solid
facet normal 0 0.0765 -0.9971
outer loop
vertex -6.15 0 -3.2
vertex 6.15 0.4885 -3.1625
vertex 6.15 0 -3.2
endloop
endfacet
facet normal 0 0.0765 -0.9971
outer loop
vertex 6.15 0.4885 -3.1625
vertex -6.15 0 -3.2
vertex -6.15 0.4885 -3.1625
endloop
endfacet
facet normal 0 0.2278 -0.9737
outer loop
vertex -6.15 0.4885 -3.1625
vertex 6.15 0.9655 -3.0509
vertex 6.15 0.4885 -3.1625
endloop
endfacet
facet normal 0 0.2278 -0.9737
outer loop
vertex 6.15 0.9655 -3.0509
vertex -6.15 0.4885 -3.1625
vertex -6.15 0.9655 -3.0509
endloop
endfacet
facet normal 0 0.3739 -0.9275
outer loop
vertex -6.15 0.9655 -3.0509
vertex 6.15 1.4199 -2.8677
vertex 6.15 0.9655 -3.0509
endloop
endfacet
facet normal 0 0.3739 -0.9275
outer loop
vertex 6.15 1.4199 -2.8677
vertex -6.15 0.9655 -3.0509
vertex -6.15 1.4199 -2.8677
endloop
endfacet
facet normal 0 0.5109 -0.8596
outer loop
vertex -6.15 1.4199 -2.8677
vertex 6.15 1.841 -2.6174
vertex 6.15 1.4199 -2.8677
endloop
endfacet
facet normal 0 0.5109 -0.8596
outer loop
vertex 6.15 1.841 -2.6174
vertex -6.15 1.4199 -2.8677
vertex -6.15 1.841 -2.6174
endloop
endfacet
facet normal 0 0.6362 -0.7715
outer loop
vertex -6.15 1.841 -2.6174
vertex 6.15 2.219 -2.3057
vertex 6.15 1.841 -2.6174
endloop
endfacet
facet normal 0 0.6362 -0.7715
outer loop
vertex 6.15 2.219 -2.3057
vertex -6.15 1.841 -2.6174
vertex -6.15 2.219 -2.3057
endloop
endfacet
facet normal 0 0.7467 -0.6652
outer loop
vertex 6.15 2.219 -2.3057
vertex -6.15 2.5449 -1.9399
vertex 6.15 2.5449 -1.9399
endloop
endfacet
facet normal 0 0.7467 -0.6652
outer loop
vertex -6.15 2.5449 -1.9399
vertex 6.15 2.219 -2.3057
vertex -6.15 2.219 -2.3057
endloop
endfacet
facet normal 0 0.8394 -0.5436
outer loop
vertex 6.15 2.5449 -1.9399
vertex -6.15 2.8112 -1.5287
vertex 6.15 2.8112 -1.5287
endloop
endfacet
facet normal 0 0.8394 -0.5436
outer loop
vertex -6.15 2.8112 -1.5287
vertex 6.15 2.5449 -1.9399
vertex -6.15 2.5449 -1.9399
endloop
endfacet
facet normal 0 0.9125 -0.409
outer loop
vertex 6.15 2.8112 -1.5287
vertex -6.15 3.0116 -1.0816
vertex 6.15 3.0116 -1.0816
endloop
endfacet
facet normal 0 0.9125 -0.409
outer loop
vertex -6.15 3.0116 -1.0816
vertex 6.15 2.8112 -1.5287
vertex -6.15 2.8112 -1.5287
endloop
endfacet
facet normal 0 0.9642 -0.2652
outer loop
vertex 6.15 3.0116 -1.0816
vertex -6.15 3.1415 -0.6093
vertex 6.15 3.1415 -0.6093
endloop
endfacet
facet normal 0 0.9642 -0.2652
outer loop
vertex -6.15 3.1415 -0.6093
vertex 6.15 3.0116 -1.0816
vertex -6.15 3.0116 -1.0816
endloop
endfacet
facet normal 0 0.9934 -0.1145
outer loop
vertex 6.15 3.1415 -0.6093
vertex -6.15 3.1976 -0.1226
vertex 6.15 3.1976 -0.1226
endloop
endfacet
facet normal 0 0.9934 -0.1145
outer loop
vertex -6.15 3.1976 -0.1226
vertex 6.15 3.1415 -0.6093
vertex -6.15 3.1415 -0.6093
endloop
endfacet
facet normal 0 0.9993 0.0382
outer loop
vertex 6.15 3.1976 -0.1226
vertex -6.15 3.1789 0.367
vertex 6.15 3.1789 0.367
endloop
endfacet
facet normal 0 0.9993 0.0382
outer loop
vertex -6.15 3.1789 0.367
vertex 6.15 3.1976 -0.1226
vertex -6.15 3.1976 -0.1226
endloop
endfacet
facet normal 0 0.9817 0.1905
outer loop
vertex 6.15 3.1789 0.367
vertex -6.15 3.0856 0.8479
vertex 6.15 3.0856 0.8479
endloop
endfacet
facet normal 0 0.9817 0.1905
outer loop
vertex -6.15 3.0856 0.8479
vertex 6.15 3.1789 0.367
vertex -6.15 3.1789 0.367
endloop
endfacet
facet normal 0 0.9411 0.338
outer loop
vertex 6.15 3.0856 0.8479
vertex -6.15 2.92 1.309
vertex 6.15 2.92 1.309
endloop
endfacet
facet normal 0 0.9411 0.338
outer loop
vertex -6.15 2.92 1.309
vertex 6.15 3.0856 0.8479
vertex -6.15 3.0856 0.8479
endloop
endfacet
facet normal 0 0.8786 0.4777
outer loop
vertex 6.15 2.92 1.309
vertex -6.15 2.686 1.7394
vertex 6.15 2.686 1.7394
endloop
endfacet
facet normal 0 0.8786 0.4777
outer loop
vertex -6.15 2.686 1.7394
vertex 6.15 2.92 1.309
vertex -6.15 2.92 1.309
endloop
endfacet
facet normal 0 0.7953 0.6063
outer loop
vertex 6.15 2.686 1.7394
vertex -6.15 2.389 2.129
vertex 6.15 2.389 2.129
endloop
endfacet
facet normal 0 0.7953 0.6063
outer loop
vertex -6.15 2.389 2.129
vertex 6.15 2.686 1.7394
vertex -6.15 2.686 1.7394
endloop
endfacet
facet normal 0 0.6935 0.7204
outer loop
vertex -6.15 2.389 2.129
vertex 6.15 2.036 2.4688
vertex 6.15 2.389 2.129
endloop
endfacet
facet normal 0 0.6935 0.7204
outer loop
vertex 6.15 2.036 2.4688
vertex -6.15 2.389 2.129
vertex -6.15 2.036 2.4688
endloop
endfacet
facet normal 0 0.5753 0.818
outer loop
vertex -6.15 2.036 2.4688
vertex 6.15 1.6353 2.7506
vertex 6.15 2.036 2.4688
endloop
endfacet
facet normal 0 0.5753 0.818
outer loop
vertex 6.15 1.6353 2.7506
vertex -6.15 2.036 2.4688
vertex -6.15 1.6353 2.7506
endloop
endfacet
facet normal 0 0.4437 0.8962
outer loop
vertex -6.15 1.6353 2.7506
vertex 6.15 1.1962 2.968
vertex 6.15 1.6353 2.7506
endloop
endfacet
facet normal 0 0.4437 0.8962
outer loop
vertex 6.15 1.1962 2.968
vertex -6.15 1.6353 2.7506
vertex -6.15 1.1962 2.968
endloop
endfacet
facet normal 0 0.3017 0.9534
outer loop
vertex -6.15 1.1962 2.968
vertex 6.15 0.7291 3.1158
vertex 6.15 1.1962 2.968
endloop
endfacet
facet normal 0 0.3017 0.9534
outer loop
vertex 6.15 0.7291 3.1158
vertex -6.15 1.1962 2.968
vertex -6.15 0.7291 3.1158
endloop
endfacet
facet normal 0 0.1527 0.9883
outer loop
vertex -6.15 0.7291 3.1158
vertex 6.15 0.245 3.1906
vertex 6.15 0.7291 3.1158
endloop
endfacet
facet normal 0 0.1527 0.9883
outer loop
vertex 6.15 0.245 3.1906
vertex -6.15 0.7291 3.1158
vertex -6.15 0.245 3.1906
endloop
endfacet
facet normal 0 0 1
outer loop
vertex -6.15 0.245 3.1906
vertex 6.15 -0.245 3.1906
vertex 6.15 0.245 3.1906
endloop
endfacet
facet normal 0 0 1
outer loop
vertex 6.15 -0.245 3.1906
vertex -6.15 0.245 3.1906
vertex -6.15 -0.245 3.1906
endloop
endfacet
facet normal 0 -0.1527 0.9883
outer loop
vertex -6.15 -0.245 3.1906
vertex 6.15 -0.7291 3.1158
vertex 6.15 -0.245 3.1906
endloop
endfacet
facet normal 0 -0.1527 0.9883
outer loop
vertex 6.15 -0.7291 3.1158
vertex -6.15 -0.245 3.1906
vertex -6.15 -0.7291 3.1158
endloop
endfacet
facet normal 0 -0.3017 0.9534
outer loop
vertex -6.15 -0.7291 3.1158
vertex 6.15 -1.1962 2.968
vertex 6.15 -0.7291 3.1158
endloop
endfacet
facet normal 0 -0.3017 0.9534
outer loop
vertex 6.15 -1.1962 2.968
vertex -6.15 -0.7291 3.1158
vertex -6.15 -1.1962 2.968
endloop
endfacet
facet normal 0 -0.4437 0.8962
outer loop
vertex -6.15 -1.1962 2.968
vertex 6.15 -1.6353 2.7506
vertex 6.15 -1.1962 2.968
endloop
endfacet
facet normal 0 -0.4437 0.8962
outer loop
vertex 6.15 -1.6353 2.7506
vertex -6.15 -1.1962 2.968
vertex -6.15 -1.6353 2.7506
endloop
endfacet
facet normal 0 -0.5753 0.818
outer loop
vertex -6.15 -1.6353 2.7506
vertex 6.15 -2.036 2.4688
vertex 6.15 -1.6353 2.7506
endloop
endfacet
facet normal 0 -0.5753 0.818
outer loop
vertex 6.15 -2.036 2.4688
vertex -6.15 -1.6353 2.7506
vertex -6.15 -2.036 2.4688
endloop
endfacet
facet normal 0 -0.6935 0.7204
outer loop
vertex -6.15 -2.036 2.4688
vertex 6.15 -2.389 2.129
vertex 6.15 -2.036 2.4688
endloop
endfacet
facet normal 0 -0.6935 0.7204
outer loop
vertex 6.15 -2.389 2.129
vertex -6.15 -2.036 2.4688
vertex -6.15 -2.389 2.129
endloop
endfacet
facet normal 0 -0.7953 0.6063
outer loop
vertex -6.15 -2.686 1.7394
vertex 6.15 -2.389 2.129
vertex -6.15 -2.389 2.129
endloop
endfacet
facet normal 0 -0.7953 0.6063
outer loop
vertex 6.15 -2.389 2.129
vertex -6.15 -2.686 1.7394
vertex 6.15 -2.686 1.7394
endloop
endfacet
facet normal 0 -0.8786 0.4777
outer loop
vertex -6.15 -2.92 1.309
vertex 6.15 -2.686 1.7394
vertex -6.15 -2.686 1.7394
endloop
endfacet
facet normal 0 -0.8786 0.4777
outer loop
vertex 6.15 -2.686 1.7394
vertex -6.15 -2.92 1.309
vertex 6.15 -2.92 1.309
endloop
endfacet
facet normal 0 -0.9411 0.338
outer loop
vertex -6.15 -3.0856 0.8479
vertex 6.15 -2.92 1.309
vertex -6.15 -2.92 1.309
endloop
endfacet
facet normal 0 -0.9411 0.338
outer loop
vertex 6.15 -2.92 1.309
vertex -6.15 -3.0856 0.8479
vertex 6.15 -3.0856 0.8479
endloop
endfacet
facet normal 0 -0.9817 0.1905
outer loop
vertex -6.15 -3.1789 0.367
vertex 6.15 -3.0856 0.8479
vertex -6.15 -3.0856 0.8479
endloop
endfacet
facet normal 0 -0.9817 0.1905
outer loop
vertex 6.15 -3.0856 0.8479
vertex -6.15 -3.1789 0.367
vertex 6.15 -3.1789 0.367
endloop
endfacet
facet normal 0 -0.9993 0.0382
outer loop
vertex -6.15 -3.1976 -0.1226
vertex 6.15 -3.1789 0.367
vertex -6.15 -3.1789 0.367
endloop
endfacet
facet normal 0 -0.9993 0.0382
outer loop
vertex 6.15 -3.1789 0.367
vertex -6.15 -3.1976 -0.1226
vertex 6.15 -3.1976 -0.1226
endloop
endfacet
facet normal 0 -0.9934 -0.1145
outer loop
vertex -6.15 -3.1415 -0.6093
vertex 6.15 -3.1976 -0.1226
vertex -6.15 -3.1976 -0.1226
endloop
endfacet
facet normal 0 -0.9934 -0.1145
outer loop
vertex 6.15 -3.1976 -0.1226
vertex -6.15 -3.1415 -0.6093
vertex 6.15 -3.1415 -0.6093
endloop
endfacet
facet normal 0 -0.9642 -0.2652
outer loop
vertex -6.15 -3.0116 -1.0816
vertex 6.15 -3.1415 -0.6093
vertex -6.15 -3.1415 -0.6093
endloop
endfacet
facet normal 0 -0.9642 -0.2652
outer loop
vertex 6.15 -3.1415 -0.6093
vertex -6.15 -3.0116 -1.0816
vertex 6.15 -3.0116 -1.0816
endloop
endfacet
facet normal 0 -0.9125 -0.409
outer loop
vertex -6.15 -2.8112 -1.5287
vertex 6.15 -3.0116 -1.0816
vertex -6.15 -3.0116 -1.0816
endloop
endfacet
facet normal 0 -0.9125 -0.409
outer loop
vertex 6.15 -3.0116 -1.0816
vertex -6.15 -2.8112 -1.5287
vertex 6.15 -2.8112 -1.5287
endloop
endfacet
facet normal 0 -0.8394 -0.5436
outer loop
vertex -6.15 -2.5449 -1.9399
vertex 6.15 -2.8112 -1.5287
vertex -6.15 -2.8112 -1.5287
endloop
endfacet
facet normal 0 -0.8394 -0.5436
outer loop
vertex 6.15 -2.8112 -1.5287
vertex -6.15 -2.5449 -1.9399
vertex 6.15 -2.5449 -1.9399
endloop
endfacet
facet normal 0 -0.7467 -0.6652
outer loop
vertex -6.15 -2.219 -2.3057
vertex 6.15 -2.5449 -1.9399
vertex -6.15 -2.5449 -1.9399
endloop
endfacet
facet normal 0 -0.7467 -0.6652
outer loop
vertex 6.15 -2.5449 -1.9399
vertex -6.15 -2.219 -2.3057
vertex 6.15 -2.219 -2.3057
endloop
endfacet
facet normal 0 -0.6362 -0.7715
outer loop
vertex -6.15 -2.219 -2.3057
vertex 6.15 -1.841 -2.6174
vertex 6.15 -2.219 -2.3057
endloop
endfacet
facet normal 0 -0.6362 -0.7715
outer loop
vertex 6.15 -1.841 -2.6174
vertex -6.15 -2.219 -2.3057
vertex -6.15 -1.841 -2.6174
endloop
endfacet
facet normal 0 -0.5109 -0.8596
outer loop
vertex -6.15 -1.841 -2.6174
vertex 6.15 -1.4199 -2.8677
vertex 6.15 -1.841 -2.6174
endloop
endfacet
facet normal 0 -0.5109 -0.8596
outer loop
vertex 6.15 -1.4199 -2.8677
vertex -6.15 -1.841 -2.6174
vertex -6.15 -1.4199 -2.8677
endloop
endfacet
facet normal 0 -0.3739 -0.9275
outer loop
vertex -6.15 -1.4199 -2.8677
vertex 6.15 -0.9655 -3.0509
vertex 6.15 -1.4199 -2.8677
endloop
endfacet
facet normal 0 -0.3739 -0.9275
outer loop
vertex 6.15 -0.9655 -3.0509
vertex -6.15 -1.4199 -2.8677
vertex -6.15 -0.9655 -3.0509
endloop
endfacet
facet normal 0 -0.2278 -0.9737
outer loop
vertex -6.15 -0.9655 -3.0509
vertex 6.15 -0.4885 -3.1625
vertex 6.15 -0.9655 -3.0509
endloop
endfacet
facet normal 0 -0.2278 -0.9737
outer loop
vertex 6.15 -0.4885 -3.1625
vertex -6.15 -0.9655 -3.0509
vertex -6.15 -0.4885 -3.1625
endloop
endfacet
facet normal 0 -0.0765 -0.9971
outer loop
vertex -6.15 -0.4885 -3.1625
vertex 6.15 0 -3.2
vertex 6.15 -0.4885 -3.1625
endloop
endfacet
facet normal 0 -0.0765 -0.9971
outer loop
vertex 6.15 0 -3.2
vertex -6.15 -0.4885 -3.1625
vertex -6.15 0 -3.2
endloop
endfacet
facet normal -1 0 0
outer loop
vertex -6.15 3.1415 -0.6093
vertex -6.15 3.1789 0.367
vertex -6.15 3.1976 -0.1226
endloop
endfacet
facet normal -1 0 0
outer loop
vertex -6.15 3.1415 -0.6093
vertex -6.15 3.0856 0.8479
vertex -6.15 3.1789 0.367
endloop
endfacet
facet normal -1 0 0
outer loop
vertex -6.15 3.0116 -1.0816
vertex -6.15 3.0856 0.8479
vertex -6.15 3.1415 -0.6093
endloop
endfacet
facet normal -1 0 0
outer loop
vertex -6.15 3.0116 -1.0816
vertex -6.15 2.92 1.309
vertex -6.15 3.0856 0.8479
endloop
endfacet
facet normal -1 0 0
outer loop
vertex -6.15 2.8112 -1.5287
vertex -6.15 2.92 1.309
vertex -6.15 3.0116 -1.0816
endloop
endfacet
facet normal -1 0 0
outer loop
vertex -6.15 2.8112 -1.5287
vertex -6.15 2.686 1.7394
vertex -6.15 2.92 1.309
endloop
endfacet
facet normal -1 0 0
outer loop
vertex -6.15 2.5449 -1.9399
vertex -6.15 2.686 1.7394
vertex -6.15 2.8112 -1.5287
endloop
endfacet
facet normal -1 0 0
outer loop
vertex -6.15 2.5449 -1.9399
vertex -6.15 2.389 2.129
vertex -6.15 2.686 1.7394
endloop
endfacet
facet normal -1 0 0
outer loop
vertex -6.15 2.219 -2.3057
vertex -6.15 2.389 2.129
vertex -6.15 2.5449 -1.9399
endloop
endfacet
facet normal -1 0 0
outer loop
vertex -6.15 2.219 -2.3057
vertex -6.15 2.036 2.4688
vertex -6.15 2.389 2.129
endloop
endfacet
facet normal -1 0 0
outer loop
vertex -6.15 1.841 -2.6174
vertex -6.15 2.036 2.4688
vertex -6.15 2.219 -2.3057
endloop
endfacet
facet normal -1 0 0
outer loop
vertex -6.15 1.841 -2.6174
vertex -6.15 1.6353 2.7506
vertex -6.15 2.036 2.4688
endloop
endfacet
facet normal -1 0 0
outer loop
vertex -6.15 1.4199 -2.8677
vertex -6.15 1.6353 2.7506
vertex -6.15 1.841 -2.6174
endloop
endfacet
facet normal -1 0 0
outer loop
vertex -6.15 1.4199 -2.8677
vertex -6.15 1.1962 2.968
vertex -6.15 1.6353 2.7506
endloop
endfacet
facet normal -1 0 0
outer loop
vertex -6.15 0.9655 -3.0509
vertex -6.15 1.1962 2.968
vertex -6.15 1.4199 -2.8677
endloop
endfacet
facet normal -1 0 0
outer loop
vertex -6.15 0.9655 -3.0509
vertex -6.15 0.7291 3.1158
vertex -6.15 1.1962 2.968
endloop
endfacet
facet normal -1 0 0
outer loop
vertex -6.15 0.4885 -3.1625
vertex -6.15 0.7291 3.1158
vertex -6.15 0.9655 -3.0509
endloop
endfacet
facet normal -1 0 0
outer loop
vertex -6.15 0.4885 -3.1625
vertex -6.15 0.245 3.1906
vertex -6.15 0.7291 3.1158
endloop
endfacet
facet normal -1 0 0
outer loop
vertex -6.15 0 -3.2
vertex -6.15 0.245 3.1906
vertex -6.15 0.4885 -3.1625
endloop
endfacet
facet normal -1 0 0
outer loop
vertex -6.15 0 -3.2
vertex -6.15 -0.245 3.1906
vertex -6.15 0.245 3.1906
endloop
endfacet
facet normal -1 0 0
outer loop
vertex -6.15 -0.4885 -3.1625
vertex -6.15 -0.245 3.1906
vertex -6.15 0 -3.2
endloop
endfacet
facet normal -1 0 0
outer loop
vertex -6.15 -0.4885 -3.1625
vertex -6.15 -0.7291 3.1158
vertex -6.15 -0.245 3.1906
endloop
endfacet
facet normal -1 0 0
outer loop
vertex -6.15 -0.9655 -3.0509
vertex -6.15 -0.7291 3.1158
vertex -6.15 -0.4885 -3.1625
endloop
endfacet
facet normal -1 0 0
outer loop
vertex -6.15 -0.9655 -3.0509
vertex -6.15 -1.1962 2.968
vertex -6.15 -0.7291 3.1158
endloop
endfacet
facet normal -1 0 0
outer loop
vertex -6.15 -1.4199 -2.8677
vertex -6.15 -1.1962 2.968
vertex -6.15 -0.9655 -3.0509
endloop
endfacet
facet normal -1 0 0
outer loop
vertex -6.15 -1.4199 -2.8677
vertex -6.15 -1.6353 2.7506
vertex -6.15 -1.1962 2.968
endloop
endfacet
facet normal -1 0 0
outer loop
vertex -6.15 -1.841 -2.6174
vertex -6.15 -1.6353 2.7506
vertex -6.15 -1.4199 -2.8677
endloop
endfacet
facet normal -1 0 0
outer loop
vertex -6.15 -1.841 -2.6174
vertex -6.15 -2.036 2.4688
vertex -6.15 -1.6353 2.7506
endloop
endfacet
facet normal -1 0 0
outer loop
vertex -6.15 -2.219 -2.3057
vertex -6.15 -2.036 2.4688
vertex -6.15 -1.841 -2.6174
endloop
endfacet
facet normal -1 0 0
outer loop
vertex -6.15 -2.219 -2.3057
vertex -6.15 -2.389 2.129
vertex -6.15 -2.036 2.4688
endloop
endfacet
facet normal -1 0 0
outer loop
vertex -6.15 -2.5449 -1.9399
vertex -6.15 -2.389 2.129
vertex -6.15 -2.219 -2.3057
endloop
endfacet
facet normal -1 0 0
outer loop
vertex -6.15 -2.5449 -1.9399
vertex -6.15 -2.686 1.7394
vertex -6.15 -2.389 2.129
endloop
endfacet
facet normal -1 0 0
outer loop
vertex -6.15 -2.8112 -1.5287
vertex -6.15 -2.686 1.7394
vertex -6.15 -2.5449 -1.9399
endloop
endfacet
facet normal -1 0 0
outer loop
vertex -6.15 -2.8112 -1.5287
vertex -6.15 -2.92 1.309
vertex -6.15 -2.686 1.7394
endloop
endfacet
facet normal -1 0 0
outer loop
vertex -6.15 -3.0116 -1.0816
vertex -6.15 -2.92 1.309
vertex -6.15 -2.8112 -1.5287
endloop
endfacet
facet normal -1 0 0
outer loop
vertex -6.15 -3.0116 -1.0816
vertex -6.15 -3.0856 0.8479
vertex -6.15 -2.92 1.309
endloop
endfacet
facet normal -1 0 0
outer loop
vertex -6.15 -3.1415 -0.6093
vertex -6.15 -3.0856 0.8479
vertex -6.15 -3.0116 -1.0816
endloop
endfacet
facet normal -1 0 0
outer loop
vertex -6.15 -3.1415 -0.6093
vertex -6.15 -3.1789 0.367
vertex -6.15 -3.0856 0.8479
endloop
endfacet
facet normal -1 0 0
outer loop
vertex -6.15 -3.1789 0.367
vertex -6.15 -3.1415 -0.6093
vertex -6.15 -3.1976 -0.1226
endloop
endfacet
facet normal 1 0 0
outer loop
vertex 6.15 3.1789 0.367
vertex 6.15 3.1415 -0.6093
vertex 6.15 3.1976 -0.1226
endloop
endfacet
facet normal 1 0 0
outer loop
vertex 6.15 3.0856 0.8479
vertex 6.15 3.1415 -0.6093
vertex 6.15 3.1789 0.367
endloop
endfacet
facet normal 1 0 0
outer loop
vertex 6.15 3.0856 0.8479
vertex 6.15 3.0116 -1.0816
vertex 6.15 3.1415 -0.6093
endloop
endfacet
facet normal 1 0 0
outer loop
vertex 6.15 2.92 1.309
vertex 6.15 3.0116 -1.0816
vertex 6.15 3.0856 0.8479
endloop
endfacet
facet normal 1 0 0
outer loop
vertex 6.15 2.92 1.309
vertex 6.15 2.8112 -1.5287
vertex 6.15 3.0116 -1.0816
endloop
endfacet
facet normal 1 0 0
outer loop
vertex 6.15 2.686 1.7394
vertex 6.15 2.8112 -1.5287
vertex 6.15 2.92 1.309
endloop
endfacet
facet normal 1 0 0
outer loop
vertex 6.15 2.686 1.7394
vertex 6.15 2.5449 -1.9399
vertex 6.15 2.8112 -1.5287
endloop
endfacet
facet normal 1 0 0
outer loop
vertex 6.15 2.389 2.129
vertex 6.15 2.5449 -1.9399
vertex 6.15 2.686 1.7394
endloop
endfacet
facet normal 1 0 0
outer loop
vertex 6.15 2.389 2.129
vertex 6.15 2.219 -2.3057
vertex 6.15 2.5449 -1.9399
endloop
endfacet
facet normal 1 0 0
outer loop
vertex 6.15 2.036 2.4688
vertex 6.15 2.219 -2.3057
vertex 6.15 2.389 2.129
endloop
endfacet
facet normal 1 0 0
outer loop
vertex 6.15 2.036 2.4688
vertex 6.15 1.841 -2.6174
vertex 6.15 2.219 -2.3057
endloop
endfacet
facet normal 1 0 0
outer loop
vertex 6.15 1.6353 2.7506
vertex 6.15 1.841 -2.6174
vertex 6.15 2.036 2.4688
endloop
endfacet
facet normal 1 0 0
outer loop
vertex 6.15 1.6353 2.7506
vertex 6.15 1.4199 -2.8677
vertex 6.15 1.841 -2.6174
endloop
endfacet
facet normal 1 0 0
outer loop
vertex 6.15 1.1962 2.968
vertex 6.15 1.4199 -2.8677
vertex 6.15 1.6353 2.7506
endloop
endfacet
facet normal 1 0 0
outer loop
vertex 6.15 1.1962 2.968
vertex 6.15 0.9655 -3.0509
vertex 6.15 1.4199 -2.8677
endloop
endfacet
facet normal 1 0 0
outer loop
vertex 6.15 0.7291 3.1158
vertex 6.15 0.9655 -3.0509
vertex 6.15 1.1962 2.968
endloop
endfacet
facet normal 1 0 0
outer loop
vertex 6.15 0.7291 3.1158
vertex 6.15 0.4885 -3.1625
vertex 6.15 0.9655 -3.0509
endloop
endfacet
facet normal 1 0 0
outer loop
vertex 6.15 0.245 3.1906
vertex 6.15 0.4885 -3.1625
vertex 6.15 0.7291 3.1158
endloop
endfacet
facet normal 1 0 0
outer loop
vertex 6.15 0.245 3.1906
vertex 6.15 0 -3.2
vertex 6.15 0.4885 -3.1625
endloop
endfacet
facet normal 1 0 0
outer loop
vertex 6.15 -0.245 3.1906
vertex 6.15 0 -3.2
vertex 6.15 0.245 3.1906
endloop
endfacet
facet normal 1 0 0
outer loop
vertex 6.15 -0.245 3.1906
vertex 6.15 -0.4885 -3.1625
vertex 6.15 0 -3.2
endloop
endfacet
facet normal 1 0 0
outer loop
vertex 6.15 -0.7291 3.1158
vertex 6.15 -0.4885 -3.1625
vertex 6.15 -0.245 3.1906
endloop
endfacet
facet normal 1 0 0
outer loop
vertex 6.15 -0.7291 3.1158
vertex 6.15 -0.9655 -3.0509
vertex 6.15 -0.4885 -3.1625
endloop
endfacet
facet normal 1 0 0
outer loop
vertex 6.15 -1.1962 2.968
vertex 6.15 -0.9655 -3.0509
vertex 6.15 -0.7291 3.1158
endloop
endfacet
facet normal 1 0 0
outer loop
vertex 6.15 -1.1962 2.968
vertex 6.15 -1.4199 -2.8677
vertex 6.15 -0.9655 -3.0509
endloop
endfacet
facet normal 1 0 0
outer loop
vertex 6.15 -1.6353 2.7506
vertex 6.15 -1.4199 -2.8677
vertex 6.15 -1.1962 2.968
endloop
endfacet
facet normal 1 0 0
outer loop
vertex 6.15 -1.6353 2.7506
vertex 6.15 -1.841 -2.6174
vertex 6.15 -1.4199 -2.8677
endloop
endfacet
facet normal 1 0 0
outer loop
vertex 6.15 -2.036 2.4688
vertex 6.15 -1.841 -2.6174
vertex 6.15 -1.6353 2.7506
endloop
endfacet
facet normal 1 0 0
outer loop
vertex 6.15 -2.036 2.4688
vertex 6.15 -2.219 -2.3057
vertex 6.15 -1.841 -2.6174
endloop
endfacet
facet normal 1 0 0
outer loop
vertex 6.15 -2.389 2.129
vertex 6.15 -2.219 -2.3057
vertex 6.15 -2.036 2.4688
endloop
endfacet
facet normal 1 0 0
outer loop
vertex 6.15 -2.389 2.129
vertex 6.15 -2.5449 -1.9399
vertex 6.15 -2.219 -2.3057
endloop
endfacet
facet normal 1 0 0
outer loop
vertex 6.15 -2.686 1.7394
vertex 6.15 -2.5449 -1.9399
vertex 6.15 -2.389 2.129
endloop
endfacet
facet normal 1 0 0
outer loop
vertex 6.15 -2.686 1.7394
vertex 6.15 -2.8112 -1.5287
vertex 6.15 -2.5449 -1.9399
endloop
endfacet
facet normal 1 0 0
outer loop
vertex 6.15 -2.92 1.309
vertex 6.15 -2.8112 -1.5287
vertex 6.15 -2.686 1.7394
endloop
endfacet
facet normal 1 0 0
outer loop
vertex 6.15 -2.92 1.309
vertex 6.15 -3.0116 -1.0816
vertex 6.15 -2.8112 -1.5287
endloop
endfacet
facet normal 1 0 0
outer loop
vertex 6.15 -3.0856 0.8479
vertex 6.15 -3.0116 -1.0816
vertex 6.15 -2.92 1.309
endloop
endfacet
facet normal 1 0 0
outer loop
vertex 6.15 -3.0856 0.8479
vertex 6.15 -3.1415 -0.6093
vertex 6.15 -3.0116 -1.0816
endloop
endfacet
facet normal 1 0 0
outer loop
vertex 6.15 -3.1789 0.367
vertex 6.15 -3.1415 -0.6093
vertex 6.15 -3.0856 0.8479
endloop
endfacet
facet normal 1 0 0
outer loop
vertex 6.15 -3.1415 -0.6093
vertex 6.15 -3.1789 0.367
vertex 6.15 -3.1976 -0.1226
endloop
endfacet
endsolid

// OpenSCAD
$fs=0.5; 
$fa=5;

canHeight=12.3;

//translate([0,0,(12.3-1.7)/2]) {
//    cylinder(1.7,3.2,2.7,center=true);
//}-1.7-.7
rotate([0,90,0])
cylinder(canHeight,3.2,3.2,center=true);
